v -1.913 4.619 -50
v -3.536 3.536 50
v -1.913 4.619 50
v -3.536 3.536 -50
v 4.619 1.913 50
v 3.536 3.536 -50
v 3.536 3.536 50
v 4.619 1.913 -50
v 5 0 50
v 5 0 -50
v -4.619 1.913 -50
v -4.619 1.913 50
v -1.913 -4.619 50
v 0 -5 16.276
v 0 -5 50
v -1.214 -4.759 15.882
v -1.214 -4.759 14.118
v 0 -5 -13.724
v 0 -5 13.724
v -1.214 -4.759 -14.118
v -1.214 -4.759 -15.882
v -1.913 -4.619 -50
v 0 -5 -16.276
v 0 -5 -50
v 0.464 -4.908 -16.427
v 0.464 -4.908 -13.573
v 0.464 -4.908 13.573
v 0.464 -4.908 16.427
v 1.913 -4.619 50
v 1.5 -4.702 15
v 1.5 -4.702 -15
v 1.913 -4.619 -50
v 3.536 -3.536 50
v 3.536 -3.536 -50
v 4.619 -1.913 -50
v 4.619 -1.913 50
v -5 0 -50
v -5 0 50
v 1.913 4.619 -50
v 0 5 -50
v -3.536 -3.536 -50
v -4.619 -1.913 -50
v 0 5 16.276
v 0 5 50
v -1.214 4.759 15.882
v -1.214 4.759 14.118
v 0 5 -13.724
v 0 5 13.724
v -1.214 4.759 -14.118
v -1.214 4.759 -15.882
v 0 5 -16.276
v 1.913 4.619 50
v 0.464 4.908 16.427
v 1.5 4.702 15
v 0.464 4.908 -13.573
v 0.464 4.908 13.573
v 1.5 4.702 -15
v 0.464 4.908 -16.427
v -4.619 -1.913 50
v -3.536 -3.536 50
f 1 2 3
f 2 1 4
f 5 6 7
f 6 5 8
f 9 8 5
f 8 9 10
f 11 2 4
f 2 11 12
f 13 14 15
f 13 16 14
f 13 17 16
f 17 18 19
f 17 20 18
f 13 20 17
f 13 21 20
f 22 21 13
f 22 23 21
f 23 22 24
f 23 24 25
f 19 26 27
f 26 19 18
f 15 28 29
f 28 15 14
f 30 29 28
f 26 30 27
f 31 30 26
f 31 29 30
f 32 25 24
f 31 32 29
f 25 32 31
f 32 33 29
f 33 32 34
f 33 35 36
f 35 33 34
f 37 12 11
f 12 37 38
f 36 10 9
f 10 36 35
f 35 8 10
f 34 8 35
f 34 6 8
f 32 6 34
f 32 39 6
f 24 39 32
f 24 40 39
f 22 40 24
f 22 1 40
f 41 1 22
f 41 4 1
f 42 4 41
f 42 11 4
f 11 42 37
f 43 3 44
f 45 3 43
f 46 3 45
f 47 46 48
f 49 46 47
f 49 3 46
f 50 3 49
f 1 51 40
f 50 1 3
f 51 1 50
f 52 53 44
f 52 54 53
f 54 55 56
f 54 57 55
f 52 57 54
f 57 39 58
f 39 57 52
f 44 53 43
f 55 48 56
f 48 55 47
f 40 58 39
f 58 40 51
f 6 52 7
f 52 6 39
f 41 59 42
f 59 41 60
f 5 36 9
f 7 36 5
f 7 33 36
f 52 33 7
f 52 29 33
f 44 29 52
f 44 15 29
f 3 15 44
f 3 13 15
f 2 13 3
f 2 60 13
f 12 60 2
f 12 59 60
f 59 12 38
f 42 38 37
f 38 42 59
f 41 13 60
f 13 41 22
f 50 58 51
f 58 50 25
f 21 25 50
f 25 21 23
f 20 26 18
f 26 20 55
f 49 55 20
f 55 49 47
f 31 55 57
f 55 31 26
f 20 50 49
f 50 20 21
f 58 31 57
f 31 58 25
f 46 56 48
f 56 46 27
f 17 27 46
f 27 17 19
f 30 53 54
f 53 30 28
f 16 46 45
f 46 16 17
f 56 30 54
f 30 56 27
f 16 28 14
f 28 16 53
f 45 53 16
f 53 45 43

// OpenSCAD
// Parameters for the central shaft
shaft_length = 100; // Length of the shaft
shaft_diameter = 10; // Diameter of the shaft
hole_diameter = 3; // Diameter of the holes
hole_spacing = 30; // Distance between the two holes (center-to-center)

// Function to create the central shaft
module central_shaft() {
    // Create the main cylindrical shaft
    difference() {
        cylinder(h = shaft_length, d = shaft_diameter, center = true);
        
        // Create the first hole
        translate([0, 0, -hole_spacing / 2])
            rotate([90, 0, 0])
            cylinder(h = shaft_diameter + 2, d = hole_diameter, center = true);
        
        // Create the second hole
        translate([0, 0, hole_spacing / 2])
            rotate([90, 0, 0])
            cylinder(h = shaft_diameter + 2, d = hole_diameter, center = true);
    }
}

// Render the central shaft
central_shaft();
